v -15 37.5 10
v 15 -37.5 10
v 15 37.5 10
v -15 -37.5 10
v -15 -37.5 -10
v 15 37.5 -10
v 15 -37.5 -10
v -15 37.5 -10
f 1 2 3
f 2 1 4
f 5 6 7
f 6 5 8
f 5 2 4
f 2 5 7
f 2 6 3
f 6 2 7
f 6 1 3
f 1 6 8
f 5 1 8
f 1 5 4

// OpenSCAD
// ========================================
// a 30 x 75 x 20 mm box
// NeuroCAD canonical IR; dimensions are millimetres
// ========================================
$fn = 48;

cube(size=[30, 75, 20], center=true);
